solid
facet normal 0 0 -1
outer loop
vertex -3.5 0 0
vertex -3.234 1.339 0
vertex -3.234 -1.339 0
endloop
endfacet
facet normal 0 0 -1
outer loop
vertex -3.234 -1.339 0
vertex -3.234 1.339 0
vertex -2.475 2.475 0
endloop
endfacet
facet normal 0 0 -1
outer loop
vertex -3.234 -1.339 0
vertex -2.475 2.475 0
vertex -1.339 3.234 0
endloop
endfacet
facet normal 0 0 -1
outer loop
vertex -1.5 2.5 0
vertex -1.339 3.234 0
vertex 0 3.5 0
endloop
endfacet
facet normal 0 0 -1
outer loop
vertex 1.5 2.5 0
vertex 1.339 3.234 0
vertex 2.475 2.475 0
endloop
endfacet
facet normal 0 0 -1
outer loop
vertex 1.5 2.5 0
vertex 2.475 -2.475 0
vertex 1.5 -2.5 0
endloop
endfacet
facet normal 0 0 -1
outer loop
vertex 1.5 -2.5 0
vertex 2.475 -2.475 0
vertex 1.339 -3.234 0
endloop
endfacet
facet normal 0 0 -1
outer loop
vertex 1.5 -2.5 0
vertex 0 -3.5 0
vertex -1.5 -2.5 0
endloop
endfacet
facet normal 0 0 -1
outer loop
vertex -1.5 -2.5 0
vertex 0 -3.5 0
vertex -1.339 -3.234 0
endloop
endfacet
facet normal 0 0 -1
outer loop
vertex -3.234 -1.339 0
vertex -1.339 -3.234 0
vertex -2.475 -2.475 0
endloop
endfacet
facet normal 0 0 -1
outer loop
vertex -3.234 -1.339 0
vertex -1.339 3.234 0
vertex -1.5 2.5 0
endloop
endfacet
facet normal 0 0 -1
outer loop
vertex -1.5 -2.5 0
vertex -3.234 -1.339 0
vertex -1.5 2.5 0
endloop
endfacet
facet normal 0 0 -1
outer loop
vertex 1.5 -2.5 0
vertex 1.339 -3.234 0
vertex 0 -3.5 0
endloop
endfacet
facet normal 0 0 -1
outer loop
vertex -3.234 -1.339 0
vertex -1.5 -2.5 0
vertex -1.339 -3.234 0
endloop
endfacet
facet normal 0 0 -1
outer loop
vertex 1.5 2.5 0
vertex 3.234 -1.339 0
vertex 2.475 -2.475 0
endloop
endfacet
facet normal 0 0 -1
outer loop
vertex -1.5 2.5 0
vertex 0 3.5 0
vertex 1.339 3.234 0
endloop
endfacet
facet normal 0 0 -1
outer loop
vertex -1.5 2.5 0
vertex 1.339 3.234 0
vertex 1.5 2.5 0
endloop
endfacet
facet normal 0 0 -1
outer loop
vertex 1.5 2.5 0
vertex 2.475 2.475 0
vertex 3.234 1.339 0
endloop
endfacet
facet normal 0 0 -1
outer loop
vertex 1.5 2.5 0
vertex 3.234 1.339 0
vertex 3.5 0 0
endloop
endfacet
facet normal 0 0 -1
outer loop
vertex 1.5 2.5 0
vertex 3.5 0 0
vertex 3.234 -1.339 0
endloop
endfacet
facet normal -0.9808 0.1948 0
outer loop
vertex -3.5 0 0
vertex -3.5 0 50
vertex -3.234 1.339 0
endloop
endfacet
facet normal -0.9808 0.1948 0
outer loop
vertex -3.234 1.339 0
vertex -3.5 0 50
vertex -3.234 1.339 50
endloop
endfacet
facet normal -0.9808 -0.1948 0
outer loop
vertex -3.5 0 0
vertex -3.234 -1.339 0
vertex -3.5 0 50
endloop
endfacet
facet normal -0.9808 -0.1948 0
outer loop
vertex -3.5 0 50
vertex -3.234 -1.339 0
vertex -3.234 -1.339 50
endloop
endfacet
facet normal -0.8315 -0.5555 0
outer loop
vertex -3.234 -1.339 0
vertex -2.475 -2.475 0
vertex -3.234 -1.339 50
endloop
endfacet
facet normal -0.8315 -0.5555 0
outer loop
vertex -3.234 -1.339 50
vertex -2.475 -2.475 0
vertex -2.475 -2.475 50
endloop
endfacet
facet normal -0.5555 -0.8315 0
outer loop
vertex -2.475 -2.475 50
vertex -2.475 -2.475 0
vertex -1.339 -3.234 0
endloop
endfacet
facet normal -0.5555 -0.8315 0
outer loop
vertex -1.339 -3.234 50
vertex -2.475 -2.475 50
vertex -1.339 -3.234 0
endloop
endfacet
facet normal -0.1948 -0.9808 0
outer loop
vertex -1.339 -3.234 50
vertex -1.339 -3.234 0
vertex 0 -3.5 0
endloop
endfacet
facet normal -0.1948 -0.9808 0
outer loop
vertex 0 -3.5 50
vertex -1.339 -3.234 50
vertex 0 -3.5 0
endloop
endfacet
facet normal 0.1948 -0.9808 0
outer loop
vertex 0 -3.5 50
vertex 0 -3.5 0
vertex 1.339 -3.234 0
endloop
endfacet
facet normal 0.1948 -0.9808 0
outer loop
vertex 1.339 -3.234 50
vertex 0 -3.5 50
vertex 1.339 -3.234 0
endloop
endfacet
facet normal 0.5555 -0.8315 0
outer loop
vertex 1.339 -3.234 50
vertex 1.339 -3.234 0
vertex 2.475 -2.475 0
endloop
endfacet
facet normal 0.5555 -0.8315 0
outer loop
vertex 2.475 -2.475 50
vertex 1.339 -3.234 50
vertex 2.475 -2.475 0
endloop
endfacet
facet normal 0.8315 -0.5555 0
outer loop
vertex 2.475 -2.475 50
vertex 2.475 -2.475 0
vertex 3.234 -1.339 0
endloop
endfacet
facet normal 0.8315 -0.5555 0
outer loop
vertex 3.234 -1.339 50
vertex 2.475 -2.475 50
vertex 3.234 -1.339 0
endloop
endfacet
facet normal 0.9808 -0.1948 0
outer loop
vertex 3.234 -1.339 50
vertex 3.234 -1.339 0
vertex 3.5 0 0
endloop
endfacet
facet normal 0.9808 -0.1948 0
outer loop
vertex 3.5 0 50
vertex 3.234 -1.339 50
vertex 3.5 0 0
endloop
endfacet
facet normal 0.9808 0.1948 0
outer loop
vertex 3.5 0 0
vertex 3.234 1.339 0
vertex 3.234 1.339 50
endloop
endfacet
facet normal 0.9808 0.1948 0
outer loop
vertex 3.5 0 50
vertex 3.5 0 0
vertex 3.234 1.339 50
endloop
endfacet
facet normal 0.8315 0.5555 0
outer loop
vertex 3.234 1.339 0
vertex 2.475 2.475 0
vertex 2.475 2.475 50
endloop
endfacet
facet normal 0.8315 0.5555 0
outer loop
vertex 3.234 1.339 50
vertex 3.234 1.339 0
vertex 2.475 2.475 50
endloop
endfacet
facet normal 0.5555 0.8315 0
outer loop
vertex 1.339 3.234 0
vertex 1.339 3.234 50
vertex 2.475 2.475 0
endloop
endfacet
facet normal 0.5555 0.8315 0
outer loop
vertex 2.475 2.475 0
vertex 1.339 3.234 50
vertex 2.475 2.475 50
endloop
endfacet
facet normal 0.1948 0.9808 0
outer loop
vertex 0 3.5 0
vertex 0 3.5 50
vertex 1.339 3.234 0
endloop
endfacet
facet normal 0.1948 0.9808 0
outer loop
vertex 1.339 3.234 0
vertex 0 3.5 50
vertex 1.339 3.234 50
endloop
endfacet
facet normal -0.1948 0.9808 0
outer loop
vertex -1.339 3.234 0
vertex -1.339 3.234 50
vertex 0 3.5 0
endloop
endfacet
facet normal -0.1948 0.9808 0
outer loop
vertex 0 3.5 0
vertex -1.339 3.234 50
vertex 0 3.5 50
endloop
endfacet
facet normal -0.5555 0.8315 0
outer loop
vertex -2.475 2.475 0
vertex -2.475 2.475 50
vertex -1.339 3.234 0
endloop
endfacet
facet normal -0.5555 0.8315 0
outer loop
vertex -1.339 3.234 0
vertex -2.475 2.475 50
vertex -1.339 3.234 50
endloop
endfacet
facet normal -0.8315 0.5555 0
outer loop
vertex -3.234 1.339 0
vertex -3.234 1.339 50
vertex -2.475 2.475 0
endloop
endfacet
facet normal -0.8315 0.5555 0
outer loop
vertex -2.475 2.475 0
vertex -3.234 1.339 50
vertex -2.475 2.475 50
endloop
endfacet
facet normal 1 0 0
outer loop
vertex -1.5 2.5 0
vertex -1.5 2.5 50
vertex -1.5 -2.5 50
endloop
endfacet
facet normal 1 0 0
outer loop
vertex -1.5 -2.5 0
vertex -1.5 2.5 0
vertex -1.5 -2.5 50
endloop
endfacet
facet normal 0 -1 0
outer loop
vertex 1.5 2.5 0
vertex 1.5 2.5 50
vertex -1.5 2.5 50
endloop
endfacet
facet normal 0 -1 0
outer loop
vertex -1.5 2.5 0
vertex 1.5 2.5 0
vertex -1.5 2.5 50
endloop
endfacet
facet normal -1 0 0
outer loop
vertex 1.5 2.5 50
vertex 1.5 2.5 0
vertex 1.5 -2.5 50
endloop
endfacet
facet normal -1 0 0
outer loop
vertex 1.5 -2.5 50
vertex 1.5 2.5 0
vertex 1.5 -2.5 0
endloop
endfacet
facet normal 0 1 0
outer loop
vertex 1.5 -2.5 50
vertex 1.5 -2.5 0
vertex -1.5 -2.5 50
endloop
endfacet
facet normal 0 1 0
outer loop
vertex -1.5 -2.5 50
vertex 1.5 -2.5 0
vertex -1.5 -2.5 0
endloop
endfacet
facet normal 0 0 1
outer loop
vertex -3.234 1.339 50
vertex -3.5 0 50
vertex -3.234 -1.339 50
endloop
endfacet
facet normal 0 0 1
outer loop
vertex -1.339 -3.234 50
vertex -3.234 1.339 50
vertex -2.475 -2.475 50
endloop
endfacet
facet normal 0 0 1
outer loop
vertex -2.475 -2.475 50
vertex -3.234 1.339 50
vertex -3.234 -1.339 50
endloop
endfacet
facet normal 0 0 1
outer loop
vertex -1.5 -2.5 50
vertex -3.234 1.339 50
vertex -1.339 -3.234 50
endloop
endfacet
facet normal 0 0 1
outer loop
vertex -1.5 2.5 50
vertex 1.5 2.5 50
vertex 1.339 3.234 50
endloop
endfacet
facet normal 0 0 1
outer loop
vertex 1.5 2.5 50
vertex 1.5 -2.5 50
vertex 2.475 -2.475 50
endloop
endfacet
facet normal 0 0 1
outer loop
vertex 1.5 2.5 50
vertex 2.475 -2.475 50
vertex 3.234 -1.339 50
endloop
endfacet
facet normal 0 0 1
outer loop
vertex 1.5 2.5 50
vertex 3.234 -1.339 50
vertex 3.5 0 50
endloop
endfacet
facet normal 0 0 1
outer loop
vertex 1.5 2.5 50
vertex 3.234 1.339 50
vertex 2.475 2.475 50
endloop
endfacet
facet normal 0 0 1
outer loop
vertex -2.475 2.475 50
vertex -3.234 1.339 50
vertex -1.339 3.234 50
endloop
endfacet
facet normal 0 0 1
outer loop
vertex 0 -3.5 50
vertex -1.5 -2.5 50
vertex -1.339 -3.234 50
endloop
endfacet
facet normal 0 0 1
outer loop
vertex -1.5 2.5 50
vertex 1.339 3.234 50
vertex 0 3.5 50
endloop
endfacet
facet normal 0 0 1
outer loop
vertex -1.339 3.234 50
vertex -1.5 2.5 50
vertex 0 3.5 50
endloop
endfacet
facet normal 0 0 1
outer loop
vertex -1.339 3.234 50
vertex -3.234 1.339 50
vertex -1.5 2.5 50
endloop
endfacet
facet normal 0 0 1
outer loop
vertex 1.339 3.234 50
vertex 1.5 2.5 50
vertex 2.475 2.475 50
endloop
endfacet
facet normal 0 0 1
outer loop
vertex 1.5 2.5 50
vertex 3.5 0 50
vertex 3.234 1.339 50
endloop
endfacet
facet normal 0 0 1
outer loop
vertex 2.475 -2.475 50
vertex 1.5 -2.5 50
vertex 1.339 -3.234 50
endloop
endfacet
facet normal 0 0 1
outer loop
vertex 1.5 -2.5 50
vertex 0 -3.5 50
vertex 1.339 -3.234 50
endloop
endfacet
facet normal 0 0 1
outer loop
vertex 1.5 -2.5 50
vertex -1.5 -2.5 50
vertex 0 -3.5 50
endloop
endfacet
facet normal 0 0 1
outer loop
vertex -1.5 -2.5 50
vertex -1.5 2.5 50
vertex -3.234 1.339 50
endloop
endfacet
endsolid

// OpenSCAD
difference(){
cylinder($fn=16,r=5/2+1,h=50);
cube([3,5,200],center=true);
}
